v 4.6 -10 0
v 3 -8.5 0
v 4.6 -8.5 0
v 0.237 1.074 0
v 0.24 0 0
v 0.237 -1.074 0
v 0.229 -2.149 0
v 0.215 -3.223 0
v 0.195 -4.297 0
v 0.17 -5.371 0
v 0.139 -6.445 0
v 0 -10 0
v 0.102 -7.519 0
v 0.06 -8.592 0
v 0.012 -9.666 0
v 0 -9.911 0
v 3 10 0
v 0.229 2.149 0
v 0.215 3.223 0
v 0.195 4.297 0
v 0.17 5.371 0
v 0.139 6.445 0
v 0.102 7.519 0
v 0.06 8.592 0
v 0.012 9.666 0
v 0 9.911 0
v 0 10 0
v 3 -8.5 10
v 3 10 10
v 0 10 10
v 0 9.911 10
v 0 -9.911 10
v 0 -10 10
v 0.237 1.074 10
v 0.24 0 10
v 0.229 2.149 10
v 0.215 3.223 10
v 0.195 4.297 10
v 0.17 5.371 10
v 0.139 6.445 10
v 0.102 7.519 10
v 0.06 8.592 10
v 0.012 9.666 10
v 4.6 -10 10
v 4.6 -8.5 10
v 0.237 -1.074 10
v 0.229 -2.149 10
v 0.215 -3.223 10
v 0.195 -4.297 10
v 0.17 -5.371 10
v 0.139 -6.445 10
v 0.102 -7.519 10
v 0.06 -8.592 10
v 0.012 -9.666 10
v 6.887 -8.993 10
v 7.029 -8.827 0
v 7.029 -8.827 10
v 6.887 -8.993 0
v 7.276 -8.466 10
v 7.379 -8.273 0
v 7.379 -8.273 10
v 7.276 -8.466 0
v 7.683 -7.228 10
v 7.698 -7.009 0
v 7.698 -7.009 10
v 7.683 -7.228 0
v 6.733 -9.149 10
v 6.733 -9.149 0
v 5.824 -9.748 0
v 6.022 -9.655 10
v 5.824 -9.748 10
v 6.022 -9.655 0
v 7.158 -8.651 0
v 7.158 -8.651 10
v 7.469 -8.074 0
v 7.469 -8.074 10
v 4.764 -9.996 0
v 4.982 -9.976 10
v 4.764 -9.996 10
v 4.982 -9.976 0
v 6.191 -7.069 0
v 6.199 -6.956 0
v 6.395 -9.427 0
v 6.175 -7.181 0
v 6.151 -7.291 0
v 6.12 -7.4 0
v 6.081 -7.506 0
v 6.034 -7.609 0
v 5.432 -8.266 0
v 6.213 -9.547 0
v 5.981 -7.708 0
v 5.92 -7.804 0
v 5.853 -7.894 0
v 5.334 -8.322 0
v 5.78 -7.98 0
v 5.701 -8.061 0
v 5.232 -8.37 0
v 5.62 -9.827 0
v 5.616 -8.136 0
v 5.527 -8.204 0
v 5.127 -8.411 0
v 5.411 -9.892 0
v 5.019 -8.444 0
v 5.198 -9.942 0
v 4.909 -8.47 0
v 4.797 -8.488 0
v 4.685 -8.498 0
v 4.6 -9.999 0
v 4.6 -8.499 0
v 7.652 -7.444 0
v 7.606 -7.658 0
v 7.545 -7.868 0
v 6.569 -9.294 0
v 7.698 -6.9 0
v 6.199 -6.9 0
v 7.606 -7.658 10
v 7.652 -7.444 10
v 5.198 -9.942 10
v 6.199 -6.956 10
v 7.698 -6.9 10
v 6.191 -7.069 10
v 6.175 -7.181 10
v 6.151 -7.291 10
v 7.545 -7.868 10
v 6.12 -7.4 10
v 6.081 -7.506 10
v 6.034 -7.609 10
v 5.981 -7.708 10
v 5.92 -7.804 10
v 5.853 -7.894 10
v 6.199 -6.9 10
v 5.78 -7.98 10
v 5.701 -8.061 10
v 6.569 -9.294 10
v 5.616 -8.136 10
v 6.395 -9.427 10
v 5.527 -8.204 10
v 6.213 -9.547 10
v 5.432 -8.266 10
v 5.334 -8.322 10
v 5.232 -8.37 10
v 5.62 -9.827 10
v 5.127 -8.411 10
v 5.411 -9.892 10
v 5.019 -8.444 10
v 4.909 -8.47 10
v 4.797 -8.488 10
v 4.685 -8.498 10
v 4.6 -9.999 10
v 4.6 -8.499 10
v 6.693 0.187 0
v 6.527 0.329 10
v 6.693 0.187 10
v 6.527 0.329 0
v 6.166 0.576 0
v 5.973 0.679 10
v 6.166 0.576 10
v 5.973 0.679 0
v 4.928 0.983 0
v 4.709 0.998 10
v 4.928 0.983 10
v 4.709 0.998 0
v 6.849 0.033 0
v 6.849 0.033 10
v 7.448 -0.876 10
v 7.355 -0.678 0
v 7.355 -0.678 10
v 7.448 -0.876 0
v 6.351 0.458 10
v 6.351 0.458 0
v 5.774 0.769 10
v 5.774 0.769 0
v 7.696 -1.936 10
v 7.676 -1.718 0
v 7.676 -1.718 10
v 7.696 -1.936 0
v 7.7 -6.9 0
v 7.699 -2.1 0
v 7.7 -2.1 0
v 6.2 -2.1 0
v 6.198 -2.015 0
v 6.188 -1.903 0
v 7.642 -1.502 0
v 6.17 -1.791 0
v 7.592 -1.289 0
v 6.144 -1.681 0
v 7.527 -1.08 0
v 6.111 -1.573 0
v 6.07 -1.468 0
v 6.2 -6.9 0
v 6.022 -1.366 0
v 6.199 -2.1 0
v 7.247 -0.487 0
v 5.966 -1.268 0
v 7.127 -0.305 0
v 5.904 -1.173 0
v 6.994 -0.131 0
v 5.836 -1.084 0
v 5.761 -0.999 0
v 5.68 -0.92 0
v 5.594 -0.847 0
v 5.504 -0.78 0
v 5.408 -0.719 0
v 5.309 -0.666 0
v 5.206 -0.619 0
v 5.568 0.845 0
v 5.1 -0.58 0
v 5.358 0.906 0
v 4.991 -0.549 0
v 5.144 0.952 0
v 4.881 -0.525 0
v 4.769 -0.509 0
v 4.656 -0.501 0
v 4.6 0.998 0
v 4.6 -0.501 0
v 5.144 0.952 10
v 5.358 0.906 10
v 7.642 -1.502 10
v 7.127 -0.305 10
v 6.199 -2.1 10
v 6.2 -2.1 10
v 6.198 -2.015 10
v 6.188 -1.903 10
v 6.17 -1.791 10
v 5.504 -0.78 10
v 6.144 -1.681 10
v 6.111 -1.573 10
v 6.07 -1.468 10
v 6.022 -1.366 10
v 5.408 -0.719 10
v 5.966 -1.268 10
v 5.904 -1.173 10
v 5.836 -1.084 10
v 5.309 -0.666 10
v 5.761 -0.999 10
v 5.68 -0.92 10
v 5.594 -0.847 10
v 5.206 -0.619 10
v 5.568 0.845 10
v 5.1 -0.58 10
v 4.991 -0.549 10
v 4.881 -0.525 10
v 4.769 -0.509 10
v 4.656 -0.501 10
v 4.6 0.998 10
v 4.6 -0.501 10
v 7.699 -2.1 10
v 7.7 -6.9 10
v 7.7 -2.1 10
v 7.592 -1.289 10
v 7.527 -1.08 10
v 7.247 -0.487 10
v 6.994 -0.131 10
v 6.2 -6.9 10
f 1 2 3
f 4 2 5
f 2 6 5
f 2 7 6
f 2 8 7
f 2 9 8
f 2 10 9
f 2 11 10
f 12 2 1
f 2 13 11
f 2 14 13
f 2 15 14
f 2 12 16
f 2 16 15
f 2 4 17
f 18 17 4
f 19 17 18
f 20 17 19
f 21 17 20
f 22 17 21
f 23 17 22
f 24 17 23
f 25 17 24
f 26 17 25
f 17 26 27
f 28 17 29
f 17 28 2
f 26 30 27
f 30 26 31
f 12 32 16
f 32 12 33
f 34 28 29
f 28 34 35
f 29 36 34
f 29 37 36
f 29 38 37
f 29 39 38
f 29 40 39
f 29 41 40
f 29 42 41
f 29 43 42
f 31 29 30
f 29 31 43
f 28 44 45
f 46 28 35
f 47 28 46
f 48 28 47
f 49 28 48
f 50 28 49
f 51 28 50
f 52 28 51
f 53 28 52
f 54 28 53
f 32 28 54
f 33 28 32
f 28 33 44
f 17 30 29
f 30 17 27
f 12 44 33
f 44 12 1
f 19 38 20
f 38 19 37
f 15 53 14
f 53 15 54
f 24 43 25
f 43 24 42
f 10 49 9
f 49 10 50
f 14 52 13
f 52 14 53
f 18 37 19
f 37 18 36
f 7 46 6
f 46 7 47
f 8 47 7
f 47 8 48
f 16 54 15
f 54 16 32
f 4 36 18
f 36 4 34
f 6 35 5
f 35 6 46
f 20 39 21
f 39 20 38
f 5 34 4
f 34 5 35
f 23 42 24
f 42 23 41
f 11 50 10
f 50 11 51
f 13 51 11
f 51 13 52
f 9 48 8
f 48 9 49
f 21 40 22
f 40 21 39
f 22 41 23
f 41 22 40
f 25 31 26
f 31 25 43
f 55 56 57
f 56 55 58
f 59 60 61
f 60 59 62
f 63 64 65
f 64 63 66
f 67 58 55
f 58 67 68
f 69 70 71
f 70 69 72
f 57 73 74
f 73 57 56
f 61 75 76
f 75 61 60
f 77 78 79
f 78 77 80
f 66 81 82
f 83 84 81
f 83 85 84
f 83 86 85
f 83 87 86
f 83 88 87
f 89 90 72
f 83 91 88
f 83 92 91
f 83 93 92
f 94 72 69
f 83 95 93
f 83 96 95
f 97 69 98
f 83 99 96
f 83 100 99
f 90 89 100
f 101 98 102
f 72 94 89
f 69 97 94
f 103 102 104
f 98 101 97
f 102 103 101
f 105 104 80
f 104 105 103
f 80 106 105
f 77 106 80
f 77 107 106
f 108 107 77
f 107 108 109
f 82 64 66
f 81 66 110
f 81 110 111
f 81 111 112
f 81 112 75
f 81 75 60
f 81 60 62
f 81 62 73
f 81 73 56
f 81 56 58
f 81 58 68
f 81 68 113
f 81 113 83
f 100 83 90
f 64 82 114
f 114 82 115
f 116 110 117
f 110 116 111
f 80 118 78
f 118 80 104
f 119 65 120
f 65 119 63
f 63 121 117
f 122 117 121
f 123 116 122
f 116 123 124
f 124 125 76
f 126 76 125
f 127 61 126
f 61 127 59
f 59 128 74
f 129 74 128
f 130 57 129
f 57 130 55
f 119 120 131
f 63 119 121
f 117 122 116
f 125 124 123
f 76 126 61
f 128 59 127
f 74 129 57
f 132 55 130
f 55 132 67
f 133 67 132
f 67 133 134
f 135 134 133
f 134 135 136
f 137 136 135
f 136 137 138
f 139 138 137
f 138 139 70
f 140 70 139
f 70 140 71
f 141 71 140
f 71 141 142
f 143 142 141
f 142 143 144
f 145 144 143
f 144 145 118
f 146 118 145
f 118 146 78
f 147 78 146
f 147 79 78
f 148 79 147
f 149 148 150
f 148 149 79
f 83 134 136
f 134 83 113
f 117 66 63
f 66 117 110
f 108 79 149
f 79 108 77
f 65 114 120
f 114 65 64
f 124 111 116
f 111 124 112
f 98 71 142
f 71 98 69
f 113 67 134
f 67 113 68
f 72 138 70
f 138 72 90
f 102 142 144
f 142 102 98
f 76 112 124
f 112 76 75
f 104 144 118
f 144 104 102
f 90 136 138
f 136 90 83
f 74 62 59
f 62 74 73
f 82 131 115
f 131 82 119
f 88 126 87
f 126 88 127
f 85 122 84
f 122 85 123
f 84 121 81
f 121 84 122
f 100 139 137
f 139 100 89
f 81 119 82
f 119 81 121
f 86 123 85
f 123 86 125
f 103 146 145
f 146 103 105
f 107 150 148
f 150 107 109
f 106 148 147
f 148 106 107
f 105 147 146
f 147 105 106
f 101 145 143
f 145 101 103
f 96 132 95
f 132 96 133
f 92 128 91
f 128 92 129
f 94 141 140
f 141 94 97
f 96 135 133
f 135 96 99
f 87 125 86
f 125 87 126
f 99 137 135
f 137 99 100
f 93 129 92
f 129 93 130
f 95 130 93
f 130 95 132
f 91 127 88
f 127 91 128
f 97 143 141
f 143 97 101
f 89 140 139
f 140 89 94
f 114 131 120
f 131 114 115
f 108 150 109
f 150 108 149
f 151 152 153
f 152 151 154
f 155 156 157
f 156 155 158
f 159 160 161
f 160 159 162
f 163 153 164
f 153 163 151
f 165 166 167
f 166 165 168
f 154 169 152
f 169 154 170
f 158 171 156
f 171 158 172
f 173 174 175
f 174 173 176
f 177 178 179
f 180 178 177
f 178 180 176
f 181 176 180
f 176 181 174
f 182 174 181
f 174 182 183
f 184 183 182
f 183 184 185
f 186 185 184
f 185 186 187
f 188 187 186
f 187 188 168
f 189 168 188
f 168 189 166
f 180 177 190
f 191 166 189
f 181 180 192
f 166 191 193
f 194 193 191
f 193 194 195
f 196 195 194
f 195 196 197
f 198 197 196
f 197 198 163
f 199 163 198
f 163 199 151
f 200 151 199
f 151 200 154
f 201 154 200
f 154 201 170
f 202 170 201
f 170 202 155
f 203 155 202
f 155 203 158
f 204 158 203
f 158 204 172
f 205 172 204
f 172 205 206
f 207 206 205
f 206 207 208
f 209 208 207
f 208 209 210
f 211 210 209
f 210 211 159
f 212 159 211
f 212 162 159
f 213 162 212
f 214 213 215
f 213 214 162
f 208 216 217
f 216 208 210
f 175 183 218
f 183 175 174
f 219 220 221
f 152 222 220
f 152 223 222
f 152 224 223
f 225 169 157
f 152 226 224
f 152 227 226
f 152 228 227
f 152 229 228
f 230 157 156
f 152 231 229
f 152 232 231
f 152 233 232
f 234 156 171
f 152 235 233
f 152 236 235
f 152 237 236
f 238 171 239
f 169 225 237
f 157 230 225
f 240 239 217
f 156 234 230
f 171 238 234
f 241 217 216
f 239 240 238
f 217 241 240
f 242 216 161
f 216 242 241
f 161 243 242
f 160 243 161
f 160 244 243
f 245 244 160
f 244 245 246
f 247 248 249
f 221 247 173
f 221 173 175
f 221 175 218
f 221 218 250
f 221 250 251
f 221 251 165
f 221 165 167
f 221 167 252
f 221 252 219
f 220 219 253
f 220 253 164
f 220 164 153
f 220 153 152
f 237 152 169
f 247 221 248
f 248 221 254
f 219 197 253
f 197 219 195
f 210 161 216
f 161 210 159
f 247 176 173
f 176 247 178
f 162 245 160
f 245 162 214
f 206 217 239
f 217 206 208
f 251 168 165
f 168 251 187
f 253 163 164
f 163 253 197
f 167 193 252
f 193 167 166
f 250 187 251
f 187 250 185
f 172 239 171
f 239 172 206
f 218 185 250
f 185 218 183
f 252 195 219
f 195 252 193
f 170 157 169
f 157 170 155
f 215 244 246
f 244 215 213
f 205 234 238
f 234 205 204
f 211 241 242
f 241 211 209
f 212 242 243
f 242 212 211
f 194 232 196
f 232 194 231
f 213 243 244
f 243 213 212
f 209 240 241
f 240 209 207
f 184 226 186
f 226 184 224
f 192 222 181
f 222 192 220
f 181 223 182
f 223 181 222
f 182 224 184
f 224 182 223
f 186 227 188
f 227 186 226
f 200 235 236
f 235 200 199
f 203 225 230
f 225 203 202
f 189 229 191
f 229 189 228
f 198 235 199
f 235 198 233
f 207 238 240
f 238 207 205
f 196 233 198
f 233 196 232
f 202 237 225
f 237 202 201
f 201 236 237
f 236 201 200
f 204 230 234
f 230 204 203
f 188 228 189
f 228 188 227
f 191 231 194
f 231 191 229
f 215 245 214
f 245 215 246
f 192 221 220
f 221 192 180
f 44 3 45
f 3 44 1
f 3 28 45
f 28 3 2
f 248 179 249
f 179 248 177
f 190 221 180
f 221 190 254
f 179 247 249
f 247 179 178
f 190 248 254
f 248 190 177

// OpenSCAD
// Print in ASA Black, 15% fill, No Support

pierDiameter                = 410.38;
cableDiameter               = 2.7 + 0.5;
clipBaseDimensions          = [10, 20, 3];
pierClipBaseOffsetZ         = 0.24;
clipThickness               = 1.5;
cableClipLength             = cableDiameter * 1.5;


$fn                         = 89;
manifoldCorrection          = 0.01;
manifoldCorrection2         = manifoldCorrection * 2;


translate( [0, 0, clipBaseDimensions[0]/2] )
    rotate( [0, 90, 0] )
        clip();


module clip()
{
    difference()
    {
        translate( [0, 0, clipBaseDimensions[2]/2] )
            cube( clipBaseDimensions, center = true);
            
        translate( [0, 0, -pierDiameter/2 + pierClipBaseOffsetZ] )
            rotate( [0, 90, 0] )
                cylinder(d = pierDiameter, h = clipBaseDimensions[0] + manifoldCorrection2, center = true, $fn = 1200);
    }
    
    translate( [0, 0, clipBaseDimensions[2]] )
    {
        translate( [0, -clipBaseDimensions[1]/2, cableDiameter/2] )
            donut90(cableDiameter + clipThickness*2, cableDiameter, clipBaseDimensions[0]); 
        
        translate( [-clipBaseDimensions[0]/2, -clipBaseDimensions[1]/2, 0] )
            cube( [clipBaseDimensions[0], clipThickness, cableDiameter/2] );
          
        translate( [-clipBaseDimensions[0]/2, -clipBaseDimensions[1]/2 + (cableDiameter + clipThickness*2)/2, cableDiameter/2 + cableDiameter/2] )
            cube( [clipBaseDimensions[0], cableClipLength, clipThickness] );

        translate( [0, -clipBaseDimensions[1]/2 + (cableDiameter + clipThickness*2)/2 + cableClipLength, cableDiameter / 2 + (0 + (cableDiameter + clipThickness * 2)/2)] )
            rotate( [-90, 0, 0] )
                donut90(cableDiameter + clipThickness*2, cableDiameter, clipBaseDimensions[0]); 
    }
}



module donut90(outerDiameter, innerDiameter, height)
{
    translate( [0, outerDiameter/2, 0] )
        rotate( [0, 90, 0] )
            translate( [0, 0, -height/2] )
                difference()
                {
                    donut(outerDiameter, innerDiameter, height);
                    translate( [0, 0, -manifoldCorrection] )
                    {
                        translate( [-outerDiameter/2, 0, 0] )
                            cube( [outerDiameter, outerDiameter, height + manifoldCorrection2] );
                        translate( [0, -outerDiameter/2, 0] )
                            cube( [outerDiameter, outerDiameter, height + manifoldCorrection2] );
                    }
                }
}



module donut(outerDiameter, innerDiameter, height)
{
    difference()
    {
        cylinder(d=outerDiameter, h=height);
        translate( [0, 0, -manifoldCorrection] )
            cylinder(d=innerDiameter, h=height + manifoldCorrection * 2);
    }
}
